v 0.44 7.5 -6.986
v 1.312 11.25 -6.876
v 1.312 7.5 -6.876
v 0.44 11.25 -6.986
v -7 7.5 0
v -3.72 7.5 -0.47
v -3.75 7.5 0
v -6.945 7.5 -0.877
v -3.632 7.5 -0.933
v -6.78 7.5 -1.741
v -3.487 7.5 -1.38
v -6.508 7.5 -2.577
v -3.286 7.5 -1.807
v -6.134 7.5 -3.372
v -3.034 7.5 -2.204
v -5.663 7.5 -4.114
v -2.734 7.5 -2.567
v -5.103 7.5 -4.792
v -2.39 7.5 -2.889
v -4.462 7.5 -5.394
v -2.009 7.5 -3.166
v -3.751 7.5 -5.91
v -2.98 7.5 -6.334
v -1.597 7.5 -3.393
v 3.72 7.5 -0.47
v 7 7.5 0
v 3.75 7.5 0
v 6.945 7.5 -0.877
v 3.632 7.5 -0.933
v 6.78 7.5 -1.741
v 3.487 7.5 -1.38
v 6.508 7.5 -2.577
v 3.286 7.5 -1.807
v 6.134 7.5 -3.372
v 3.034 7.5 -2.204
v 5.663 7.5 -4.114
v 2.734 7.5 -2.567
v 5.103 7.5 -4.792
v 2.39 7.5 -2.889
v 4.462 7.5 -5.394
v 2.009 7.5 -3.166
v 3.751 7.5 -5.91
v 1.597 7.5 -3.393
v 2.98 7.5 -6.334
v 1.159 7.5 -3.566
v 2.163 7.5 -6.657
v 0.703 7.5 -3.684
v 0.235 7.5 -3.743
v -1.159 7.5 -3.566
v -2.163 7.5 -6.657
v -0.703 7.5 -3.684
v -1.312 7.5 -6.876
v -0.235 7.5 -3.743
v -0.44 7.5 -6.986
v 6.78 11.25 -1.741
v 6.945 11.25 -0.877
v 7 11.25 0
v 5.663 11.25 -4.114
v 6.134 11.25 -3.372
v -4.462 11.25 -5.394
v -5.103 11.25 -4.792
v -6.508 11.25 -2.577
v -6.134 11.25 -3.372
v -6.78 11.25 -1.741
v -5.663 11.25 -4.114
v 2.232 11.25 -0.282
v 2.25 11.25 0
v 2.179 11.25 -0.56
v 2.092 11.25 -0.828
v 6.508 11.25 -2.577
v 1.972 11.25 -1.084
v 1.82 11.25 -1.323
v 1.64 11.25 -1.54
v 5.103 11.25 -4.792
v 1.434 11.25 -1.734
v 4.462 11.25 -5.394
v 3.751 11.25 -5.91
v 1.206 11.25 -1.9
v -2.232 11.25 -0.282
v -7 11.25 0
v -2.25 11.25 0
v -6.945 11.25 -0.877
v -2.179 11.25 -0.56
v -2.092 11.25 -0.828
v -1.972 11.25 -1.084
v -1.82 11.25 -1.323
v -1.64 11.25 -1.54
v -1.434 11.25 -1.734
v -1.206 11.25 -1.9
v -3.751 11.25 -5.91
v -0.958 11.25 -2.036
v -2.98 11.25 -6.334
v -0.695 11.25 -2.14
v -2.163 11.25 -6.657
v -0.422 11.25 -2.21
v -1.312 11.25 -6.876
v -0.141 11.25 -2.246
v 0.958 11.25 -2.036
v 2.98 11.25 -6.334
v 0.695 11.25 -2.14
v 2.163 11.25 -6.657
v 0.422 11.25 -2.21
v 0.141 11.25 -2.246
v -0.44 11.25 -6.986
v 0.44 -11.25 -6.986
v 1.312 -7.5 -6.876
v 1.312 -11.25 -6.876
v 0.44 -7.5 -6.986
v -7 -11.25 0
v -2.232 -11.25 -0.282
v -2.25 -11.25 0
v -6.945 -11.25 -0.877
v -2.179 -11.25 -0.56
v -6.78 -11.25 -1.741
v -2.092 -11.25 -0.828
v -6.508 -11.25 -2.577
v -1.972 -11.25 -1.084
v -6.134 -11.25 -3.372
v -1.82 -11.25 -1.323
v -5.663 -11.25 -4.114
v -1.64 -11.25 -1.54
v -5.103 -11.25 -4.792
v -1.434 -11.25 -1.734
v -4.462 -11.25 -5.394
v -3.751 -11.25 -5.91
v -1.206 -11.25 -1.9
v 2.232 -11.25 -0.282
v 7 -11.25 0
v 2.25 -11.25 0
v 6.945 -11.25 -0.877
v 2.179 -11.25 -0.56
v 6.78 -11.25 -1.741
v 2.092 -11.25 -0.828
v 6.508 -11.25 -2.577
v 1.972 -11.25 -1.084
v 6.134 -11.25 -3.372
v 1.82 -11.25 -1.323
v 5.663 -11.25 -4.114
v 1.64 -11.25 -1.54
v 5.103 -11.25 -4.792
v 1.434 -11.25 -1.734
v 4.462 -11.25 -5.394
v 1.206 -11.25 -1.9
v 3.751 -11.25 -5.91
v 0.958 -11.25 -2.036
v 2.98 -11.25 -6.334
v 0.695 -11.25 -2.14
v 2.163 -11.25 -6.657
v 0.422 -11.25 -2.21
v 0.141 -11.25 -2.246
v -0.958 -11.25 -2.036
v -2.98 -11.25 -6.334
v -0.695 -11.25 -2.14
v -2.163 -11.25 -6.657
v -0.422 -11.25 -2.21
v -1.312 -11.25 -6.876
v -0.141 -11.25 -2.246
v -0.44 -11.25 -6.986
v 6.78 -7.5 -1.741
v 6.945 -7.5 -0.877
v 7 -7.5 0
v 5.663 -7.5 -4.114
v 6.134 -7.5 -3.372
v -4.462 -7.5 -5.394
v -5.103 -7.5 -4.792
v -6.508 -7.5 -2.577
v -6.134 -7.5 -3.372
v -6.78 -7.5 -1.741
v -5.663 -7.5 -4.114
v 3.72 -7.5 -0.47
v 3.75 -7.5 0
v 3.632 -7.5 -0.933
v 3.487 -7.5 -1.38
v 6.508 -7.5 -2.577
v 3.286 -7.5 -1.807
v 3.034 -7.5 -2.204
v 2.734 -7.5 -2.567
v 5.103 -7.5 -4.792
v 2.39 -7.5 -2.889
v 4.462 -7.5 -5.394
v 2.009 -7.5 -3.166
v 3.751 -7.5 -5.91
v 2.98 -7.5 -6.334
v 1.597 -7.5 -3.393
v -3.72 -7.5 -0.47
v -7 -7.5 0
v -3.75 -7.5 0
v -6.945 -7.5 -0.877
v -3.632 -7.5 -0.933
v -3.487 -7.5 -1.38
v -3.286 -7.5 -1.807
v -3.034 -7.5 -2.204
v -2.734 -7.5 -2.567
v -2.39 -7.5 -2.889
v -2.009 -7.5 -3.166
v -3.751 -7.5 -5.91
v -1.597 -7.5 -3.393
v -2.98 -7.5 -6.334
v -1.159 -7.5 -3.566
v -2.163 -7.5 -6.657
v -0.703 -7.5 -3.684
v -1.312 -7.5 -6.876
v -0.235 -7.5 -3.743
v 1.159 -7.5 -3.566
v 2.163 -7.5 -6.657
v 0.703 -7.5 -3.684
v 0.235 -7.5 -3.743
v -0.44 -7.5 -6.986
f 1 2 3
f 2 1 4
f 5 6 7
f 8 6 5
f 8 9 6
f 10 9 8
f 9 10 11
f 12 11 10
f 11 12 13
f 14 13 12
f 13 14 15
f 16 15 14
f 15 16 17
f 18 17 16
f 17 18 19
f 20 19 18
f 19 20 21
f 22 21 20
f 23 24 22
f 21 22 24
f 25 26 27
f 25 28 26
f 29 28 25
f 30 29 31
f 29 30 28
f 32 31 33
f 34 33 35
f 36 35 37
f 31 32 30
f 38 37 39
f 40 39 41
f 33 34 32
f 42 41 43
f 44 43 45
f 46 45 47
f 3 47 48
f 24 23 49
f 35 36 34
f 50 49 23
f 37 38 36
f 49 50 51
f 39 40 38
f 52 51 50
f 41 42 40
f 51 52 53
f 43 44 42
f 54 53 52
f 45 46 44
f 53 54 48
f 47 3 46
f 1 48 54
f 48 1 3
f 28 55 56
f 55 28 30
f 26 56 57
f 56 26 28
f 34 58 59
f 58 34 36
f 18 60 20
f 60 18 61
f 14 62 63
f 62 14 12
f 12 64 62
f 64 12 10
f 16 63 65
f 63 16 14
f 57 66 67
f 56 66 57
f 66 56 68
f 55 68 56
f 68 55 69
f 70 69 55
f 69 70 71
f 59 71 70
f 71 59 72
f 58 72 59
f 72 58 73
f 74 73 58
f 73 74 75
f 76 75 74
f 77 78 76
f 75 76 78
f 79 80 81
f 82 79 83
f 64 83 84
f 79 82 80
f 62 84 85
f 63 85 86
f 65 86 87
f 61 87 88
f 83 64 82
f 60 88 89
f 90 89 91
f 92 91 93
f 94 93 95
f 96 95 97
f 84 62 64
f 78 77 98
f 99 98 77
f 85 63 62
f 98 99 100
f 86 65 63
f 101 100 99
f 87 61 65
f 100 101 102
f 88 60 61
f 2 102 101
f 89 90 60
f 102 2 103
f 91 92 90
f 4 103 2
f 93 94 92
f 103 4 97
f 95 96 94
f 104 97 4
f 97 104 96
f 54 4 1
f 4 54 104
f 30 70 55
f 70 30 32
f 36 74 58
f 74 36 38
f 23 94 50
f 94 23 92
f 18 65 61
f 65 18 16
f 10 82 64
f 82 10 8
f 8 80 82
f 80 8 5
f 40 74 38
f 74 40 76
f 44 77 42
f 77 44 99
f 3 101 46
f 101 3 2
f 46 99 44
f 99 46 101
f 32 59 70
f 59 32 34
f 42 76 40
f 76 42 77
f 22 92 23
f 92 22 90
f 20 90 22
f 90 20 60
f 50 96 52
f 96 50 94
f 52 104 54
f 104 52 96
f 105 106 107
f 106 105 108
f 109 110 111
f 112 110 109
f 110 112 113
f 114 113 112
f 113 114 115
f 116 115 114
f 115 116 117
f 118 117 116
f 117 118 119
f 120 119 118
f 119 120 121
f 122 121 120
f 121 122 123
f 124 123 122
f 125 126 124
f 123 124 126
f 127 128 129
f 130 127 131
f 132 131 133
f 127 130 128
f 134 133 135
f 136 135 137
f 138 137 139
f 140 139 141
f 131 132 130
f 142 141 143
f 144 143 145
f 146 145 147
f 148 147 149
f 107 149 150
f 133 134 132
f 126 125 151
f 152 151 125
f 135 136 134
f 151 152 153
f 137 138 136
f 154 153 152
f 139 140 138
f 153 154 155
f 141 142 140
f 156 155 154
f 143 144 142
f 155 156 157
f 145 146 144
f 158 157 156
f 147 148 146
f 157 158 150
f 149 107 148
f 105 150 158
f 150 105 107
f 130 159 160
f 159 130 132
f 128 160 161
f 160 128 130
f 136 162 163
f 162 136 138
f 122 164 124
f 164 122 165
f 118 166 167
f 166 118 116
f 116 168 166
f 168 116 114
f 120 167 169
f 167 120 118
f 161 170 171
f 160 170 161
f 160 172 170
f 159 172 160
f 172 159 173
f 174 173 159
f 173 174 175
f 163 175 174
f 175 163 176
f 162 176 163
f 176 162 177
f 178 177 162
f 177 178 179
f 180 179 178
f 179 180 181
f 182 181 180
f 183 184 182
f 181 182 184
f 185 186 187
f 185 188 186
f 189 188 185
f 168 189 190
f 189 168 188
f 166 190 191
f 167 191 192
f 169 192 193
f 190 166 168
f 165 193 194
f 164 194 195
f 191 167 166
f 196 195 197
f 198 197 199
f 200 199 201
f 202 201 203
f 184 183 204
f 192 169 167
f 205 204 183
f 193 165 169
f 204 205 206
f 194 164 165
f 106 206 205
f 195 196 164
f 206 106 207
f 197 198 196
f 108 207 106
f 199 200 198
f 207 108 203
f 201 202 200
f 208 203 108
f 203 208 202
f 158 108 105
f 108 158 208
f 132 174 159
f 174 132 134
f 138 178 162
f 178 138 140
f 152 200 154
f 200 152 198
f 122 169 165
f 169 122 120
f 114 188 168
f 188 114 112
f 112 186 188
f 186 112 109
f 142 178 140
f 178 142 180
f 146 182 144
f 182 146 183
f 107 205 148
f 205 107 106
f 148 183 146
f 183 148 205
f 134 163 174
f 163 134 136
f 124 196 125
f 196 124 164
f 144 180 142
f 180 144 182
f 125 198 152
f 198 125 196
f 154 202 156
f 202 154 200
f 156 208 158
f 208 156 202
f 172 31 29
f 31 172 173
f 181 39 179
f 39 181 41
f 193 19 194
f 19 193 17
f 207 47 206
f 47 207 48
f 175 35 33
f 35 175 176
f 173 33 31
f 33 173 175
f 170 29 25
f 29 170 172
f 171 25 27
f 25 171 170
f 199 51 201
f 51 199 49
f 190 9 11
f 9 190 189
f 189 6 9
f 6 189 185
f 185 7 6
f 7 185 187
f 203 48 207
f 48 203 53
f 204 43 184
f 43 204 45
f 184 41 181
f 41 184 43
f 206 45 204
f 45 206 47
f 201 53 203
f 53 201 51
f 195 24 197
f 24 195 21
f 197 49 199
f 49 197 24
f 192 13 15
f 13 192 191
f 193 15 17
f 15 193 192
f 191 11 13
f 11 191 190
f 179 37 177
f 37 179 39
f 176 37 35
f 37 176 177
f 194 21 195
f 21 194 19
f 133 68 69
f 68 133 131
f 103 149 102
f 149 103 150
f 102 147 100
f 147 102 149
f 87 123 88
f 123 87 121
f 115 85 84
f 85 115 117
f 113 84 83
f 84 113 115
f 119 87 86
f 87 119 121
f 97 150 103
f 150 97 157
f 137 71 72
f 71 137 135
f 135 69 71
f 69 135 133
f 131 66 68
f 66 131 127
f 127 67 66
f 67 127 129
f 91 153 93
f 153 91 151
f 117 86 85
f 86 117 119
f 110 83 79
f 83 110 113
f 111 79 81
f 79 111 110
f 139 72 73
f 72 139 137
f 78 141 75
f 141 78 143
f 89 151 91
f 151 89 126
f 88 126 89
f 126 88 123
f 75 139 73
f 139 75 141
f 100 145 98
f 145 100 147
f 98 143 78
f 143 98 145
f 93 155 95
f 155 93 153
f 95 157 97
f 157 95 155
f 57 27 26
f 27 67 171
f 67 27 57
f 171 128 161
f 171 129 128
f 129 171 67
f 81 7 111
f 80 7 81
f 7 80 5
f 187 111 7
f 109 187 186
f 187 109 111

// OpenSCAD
$fn = 50;


difference() {
	union() {
		translate(v = [0, 11.2500000000, 0.0000000000]) {
			rotate(a = [90, 0, 0]) {
				cylinder(h = 3.7500000000, r = 7.0000000000);
			}
		}
		translate(v = [0, -7.5000000000, 0.0000000000]) {
			rotate(a = [90, 0, 0]) {
				cylinder(h = 3.7500000000, r = 7.0000000000);
			}
		}
		translate(v = [0, 11.2500000000, 0.0000000000]) {
			rotate(a = [90, 0, 0]) {
				cylinder(h = 22.5000000000, r = 3.7500000000);
			}
		}
	}
	union() {
		translate(v = [0, 11.2500000000, 0.0000000000]) {
			rotate(a = [90, 0, 0]) {
				cylinder(h = 22.5000000000, r = 2.2500000000);
			}
		}
		translate(v = [-250.0000000000, -250.0000000000, 0]) {
			cube(size = [500, 500, 500]);
		}
		translate(v = [-250.0000000000, -250.0000000000, 0]) {
			cube(size = [500, 500, 500]);
		}
		translate(v = [-250.0000000000, -250.0000000000, 0]) {
			cube(size = [500, 500, 500]);
		}
	}
}
